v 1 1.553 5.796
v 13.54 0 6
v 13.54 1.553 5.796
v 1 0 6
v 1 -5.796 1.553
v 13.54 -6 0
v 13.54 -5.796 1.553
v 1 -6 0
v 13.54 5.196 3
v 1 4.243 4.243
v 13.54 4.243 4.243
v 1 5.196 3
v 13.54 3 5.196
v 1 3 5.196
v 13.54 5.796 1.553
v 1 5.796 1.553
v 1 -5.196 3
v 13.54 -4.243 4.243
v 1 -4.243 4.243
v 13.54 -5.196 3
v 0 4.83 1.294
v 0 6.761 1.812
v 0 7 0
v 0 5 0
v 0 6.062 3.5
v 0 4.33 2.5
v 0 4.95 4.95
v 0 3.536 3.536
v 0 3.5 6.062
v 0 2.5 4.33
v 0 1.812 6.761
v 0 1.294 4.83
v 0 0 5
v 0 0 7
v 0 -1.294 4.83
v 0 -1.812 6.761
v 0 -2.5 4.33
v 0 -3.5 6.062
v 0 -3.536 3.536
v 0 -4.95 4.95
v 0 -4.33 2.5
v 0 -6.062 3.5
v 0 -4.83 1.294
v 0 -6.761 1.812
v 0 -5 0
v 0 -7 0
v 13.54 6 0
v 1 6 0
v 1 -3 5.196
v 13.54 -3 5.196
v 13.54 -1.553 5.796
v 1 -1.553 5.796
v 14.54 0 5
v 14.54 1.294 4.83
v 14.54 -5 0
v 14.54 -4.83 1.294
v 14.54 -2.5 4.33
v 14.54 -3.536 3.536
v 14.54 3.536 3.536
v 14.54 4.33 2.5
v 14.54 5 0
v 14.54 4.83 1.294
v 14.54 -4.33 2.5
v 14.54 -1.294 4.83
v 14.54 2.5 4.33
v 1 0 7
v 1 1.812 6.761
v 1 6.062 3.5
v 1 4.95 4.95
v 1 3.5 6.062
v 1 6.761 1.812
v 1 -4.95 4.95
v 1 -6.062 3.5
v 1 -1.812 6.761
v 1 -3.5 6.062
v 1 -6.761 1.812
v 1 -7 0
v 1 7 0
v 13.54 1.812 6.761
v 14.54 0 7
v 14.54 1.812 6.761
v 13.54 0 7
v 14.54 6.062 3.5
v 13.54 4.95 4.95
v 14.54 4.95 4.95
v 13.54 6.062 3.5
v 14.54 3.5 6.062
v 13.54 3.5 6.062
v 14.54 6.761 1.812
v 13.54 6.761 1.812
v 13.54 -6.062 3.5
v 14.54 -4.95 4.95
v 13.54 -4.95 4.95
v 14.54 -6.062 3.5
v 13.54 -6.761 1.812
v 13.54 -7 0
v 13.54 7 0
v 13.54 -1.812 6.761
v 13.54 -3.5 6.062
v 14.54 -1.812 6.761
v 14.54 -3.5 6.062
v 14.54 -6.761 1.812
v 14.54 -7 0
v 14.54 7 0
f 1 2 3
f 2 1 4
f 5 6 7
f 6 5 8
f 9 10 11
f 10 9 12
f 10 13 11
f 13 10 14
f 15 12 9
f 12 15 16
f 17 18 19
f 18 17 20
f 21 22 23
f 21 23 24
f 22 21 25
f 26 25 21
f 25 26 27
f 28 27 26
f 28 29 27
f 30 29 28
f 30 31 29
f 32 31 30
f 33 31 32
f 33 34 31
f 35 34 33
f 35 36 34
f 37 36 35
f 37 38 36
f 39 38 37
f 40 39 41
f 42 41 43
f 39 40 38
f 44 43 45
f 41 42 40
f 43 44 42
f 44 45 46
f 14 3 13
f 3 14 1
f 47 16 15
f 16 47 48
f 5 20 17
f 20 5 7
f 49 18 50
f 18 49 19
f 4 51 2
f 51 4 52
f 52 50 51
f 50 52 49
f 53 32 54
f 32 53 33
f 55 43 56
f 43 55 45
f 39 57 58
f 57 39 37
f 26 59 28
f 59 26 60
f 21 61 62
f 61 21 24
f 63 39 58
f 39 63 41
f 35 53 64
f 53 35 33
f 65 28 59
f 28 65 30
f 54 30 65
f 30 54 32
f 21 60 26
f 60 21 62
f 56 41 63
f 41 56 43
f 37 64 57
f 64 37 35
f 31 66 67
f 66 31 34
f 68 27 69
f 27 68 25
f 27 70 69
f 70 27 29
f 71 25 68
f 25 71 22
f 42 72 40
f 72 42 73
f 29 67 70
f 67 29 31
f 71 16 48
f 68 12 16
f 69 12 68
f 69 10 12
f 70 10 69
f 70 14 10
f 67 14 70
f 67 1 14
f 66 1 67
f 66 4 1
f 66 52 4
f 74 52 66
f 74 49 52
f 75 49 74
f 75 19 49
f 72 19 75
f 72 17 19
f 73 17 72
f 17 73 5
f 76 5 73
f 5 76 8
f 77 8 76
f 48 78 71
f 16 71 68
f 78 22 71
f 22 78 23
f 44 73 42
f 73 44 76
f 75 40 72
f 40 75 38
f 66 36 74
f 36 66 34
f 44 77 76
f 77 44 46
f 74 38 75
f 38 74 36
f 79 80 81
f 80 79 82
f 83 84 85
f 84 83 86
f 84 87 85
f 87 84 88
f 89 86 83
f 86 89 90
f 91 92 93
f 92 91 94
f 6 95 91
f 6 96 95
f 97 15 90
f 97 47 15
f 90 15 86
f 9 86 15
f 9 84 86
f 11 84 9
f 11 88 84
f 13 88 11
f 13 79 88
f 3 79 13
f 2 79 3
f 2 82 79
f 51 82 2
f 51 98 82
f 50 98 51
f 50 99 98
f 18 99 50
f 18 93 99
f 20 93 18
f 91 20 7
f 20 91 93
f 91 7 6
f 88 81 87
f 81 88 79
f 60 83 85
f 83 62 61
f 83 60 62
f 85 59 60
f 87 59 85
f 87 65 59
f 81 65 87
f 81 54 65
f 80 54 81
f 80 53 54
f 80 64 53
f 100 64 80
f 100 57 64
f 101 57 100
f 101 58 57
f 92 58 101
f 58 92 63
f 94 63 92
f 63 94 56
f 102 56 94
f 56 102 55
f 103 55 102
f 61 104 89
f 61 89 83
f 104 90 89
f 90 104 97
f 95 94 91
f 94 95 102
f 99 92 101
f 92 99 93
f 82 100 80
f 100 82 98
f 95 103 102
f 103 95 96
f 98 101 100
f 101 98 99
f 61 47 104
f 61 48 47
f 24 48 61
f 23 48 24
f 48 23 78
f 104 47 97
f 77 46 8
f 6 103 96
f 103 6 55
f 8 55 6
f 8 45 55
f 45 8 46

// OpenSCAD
// file: ../build_environments.scad
// build_environments.scad: modules to build level sections
//

module pool(diameter=10.0, wall_height=2.0, step_width=3.0, connections=[])
{
    difference() {
        union() {
        difference() {
            cylinder(h=0.5,r1=diameter+step_width,r2=diameter+step_width,$fn=48);
            translate([0,0,-0.1])
                cylinder(h=0.7,r1=diameter,r2=diameter,$fn=48);
        }
        difference() {
            cylinder(h=wall_height,r1=diameter+step_width+1.0,r2=diameter+step_width+1.0,$fn=48);
            translate([0,0,-0.1])
                cylinder(h=wall_height+0.2,r1=diameter+step_width,r2=diameter+step_width,$fn=48);
        }
        }
    
        for (c = connections)
        {
            rotate([0,90,0]) {
                angle = atan2(c[1],c[0]);
                rotate([-angle,0,0]) {
                    cylinder(h=diameter+5.0,r1=c[2],r2=c[2],$fn=48);
                }
            }
        }
    }
}

module straight(length=10.0, width=2.0, dy1=0.0, dy2=0.0, dz=0.0)
{
    dims = [0, 0, 0, 0, 0, (dz/length)];
    matrix = [
        [ 1, dims[0], dims[1], 0 ],
        [ dims[2], 1, dims[4], 0 ],
        [ dims[5], dims[3], 1, 0 ],
        [ 0, 0, 0, 1 ]
    ];
    multmatrix(matrix)
    difference() {
        translate([dy1,0,0])
        union() {
            rotate([0,90,0]) {
                difference() {
                    cylinder(h=(length-dy1-dy2),r1=width+1.0,r2=width+1.0,$fn=24);
                    translate([0,0,-0.1])
                        cylinder(h=(length-dy1-dy2+0.2),r1=width,r2=width,$fn=24);
                }
                difference() {
                    cylinder(h=1.0,r1=width+2.0,r2=width+2.0,$fn=24);
                    translate([0,0,-0.1])
                        cylinder(h=1.2,r1=width,r2=width,$fn=24);
                }
                translate([0,0,(length-dy1-dy2)-1.0]) {
                    difference() {
                        cylinder(h=1.0,r1=width+2.0,r2=width+2.0,$fn=24);
                        translate([0,0,-0.1])
                            cylinder(h=1.2,r1=width,r2=width,$fn=24);
                    }
                }
            }
        }
        translate([0,0,-(2*width+4.0)/2])
            cube([3*length,3*length,2*width+4.0],center=true);
    }
}

module curve(p0=[0,0], center=[0,0], dir=1, angle=0.0, width=2.0)
{
    radius = sqrt((p0[0]-center[0])*(p0[0]-center[0]) + (p0[1]-center[1])*(p0[1]-center[1]));
    if (dir == 0) {
        difference() {
            rotate([0,0,-90])
            difference() {
                rotate_extrude(angle = angle, convexity = 10, $fn=32)
                    translate([radius, 0, 0])
                        circle(r = width+1.0,$fn=24);
                rotate([0,0,-1.0])
                    rotate_extrude(angle = angle+2.0, convexity = 10, $fn=32)
                        translate([radius, 0, 0])
                            circle(r = width,$fn=24);
            }
            translate([0,0,-(2*width+4.0)/2])
                cube([5*radius,5*radius,2*width+4.0],center=true);
        }
    }
    else {
        difference() {
            rotate([0,0,90])
            difference() {
                rotate_extrude(angle = -angle, convexity = 10, $fn=32)
                    translate([radius, 0, 0])
                        circle(r = width+1.0,$fn=24);
                rotate([0,0,1.0])
                    rotate_extrude(angle = -angle-2.0, convexity = 10, $fn=32)
                        translate([radius, 0, 0])
                            circle(r = width,$fn=24);
            }
            translate([0,0,-(2*width+4.0)/2])
                cube([5*radius,5*radius,2*width+4.0],center=true);
        }
    }

}

// test pool
//pool(diameter=12.0000, wall_height=3.0000, step_width=3.0000, connections=[[0.0000,-26.0000,2.0000], [23.6074,0.0000,2.0000]]);

// test straight, slope
//straight(length=26.0000, width=2.0000, dy1=11.8322, dy2=6.7082, dz=0.0000);
//straight(length=29.1549, width=12.0000, dy1=0.0000, dy2=0.0000, dz=-15.0000);

// test curve
//curve(p0=[23.6074, 0.0000], center=[23.6074, 5.0000], dir=0, angle=60.1011, width=2.0000);
//curve(p0=[33.6426, 12.4219], center=[37.9771, 9.9295], dir=1, angle=120.4627, width=2.0000);
// main file
use <../build_environments.scad>;
straight(length=14.5398, width=5.0000, dy1=0.0000, dy2=0.0000, dz=0.0000);
